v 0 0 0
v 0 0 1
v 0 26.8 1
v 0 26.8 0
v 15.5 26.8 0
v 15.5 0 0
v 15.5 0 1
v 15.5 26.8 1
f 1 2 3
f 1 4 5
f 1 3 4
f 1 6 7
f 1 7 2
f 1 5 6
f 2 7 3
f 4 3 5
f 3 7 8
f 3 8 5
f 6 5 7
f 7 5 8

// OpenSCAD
/* Warning, this is a very basic generator with a lot of approximation 
input data : [MODULE, 4SW, 15.5x26.8mm, 39, , D, C04-10056D]
generated by com.zoubworld.electronics.cad.model3d.Basic
Date : Sun Feb 15 10:50:49 CET 2026
*/

//body
color("black")
translate([0,0,0])
cube([15.5,26.8,1.0], center=false);
